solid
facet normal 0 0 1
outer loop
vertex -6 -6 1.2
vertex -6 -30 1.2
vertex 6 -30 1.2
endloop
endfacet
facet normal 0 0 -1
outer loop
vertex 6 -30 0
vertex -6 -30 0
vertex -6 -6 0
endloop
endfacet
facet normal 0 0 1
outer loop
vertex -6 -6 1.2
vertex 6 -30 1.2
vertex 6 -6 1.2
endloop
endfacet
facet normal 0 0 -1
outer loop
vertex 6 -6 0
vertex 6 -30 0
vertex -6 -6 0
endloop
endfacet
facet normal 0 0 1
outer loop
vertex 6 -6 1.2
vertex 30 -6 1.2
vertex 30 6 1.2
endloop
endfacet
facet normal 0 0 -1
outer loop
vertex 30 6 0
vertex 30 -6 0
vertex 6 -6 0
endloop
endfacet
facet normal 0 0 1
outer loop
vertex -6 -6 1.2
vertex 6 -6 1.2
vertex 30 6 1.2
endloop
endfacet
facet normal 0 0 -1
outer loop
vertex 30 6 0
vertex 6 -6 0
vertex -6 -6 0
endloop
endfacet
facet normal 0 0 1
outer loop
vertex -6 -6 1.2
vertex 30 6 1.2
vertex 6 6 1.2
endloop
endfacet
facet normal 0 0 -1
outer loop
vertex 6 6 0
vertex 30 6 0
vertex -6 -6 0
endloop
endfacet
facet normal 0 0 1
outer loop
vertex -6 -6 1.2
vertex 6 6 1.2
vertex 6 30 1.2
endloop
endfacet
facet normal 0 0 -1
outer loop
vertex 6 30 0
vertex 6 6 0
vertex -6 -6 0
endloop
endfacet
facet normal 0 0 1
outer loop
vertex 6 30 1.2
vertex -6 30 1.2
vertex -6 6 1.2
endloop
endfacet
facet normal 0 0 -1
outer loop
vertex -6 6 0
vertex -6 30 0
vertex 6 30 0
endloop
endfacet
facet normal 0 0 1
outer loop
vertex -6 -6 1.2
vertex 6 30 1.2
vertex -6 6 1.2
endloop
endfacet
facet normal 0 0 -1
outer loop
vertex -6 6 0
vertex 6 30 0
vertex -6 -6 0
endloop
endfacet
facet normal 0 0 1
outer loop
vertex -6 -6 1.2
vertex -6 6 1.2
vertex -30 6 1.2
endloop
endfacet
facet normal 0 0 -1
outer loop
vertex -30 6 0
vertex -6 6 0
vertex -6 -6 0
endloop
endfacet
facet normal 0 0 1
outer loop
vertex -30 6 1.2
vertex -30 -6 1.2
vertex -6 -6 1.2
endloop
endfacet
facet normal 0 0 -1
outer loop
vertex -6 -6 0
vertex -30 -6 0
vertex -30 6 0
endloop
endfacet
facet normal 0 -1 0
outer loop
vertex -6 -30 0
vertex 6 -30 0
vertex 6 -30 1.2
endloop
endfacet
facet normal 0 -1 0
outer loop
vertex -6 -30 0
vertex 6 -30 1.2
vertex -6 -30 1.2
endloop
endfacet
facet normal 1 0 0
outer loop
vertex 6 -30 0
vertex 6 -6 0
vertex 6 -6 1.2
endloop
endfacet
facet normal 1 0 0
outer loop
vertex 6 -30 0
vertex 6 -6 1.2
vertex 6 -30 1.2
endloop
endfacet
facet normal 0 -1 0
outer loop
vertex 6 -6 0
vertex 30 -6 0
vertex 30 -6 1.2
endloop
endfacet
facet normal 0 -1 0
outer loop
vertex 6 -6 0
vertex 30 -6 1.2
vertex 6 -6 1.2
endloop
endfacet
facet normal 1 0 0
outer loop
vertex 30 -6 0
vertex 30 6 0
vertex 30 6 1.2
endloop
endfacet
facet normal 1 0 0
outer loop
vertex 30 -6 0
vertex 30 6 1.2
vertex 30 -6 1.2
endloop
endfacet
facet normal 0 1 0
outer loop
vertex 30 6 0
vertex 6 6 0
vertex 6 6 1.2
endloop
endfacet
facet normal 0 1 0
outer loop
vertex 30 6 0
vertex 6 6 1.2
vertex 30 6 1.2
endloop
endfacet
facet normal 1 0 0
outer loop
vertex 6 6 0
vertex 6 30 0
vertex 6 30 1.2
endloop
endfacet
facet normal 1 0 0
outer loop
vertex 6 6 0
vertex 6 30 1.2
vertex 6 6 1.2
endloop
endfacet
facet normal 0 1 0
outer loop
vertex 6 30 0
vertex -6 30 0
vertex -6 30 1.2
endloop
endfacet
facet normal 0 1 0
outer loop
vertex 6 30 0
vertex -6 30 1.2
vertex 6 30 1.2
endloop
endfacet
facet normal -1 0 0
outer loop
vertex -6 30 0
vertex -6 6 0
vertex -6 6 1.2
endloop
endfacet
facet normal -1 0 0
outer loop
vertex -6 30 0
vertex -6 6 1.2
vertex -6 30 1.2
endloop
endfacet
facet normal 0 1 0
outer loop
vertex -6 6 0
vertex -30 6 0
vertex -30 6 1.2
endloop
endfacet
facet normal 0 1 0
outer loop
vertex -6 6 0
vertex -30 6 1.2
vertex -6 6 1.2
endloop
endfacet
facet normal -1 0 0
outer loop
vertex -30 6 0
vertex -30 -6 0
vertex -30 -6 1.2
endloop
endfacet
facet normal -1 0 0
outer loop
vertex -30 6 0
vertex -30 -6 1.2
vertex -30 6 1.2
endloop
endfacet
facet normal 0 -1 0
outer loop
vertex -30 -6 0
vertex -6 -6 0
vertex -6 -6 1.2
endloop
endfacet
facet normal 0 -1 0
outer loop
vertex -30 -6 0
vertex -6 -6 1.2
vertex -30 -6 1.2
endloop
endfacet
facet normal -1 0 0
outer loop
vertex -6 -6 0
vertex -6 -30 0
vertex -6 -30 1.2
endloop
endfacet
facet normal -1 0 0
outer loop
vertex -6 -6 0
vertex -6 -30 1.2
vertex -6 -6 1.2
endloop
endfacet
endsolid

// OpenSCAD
// goal cross, 60 mm (generated by tools/demo_course_parts.py)
linear_extrude(1.2) polygon([[-6, -30], [6, -30], [6, -6], [30, -6], [30, 6], [6, 6], [6, 30], [-6, 30], [-6, 6], [-30, 6], [-30, -6], [-6, -6]]);
